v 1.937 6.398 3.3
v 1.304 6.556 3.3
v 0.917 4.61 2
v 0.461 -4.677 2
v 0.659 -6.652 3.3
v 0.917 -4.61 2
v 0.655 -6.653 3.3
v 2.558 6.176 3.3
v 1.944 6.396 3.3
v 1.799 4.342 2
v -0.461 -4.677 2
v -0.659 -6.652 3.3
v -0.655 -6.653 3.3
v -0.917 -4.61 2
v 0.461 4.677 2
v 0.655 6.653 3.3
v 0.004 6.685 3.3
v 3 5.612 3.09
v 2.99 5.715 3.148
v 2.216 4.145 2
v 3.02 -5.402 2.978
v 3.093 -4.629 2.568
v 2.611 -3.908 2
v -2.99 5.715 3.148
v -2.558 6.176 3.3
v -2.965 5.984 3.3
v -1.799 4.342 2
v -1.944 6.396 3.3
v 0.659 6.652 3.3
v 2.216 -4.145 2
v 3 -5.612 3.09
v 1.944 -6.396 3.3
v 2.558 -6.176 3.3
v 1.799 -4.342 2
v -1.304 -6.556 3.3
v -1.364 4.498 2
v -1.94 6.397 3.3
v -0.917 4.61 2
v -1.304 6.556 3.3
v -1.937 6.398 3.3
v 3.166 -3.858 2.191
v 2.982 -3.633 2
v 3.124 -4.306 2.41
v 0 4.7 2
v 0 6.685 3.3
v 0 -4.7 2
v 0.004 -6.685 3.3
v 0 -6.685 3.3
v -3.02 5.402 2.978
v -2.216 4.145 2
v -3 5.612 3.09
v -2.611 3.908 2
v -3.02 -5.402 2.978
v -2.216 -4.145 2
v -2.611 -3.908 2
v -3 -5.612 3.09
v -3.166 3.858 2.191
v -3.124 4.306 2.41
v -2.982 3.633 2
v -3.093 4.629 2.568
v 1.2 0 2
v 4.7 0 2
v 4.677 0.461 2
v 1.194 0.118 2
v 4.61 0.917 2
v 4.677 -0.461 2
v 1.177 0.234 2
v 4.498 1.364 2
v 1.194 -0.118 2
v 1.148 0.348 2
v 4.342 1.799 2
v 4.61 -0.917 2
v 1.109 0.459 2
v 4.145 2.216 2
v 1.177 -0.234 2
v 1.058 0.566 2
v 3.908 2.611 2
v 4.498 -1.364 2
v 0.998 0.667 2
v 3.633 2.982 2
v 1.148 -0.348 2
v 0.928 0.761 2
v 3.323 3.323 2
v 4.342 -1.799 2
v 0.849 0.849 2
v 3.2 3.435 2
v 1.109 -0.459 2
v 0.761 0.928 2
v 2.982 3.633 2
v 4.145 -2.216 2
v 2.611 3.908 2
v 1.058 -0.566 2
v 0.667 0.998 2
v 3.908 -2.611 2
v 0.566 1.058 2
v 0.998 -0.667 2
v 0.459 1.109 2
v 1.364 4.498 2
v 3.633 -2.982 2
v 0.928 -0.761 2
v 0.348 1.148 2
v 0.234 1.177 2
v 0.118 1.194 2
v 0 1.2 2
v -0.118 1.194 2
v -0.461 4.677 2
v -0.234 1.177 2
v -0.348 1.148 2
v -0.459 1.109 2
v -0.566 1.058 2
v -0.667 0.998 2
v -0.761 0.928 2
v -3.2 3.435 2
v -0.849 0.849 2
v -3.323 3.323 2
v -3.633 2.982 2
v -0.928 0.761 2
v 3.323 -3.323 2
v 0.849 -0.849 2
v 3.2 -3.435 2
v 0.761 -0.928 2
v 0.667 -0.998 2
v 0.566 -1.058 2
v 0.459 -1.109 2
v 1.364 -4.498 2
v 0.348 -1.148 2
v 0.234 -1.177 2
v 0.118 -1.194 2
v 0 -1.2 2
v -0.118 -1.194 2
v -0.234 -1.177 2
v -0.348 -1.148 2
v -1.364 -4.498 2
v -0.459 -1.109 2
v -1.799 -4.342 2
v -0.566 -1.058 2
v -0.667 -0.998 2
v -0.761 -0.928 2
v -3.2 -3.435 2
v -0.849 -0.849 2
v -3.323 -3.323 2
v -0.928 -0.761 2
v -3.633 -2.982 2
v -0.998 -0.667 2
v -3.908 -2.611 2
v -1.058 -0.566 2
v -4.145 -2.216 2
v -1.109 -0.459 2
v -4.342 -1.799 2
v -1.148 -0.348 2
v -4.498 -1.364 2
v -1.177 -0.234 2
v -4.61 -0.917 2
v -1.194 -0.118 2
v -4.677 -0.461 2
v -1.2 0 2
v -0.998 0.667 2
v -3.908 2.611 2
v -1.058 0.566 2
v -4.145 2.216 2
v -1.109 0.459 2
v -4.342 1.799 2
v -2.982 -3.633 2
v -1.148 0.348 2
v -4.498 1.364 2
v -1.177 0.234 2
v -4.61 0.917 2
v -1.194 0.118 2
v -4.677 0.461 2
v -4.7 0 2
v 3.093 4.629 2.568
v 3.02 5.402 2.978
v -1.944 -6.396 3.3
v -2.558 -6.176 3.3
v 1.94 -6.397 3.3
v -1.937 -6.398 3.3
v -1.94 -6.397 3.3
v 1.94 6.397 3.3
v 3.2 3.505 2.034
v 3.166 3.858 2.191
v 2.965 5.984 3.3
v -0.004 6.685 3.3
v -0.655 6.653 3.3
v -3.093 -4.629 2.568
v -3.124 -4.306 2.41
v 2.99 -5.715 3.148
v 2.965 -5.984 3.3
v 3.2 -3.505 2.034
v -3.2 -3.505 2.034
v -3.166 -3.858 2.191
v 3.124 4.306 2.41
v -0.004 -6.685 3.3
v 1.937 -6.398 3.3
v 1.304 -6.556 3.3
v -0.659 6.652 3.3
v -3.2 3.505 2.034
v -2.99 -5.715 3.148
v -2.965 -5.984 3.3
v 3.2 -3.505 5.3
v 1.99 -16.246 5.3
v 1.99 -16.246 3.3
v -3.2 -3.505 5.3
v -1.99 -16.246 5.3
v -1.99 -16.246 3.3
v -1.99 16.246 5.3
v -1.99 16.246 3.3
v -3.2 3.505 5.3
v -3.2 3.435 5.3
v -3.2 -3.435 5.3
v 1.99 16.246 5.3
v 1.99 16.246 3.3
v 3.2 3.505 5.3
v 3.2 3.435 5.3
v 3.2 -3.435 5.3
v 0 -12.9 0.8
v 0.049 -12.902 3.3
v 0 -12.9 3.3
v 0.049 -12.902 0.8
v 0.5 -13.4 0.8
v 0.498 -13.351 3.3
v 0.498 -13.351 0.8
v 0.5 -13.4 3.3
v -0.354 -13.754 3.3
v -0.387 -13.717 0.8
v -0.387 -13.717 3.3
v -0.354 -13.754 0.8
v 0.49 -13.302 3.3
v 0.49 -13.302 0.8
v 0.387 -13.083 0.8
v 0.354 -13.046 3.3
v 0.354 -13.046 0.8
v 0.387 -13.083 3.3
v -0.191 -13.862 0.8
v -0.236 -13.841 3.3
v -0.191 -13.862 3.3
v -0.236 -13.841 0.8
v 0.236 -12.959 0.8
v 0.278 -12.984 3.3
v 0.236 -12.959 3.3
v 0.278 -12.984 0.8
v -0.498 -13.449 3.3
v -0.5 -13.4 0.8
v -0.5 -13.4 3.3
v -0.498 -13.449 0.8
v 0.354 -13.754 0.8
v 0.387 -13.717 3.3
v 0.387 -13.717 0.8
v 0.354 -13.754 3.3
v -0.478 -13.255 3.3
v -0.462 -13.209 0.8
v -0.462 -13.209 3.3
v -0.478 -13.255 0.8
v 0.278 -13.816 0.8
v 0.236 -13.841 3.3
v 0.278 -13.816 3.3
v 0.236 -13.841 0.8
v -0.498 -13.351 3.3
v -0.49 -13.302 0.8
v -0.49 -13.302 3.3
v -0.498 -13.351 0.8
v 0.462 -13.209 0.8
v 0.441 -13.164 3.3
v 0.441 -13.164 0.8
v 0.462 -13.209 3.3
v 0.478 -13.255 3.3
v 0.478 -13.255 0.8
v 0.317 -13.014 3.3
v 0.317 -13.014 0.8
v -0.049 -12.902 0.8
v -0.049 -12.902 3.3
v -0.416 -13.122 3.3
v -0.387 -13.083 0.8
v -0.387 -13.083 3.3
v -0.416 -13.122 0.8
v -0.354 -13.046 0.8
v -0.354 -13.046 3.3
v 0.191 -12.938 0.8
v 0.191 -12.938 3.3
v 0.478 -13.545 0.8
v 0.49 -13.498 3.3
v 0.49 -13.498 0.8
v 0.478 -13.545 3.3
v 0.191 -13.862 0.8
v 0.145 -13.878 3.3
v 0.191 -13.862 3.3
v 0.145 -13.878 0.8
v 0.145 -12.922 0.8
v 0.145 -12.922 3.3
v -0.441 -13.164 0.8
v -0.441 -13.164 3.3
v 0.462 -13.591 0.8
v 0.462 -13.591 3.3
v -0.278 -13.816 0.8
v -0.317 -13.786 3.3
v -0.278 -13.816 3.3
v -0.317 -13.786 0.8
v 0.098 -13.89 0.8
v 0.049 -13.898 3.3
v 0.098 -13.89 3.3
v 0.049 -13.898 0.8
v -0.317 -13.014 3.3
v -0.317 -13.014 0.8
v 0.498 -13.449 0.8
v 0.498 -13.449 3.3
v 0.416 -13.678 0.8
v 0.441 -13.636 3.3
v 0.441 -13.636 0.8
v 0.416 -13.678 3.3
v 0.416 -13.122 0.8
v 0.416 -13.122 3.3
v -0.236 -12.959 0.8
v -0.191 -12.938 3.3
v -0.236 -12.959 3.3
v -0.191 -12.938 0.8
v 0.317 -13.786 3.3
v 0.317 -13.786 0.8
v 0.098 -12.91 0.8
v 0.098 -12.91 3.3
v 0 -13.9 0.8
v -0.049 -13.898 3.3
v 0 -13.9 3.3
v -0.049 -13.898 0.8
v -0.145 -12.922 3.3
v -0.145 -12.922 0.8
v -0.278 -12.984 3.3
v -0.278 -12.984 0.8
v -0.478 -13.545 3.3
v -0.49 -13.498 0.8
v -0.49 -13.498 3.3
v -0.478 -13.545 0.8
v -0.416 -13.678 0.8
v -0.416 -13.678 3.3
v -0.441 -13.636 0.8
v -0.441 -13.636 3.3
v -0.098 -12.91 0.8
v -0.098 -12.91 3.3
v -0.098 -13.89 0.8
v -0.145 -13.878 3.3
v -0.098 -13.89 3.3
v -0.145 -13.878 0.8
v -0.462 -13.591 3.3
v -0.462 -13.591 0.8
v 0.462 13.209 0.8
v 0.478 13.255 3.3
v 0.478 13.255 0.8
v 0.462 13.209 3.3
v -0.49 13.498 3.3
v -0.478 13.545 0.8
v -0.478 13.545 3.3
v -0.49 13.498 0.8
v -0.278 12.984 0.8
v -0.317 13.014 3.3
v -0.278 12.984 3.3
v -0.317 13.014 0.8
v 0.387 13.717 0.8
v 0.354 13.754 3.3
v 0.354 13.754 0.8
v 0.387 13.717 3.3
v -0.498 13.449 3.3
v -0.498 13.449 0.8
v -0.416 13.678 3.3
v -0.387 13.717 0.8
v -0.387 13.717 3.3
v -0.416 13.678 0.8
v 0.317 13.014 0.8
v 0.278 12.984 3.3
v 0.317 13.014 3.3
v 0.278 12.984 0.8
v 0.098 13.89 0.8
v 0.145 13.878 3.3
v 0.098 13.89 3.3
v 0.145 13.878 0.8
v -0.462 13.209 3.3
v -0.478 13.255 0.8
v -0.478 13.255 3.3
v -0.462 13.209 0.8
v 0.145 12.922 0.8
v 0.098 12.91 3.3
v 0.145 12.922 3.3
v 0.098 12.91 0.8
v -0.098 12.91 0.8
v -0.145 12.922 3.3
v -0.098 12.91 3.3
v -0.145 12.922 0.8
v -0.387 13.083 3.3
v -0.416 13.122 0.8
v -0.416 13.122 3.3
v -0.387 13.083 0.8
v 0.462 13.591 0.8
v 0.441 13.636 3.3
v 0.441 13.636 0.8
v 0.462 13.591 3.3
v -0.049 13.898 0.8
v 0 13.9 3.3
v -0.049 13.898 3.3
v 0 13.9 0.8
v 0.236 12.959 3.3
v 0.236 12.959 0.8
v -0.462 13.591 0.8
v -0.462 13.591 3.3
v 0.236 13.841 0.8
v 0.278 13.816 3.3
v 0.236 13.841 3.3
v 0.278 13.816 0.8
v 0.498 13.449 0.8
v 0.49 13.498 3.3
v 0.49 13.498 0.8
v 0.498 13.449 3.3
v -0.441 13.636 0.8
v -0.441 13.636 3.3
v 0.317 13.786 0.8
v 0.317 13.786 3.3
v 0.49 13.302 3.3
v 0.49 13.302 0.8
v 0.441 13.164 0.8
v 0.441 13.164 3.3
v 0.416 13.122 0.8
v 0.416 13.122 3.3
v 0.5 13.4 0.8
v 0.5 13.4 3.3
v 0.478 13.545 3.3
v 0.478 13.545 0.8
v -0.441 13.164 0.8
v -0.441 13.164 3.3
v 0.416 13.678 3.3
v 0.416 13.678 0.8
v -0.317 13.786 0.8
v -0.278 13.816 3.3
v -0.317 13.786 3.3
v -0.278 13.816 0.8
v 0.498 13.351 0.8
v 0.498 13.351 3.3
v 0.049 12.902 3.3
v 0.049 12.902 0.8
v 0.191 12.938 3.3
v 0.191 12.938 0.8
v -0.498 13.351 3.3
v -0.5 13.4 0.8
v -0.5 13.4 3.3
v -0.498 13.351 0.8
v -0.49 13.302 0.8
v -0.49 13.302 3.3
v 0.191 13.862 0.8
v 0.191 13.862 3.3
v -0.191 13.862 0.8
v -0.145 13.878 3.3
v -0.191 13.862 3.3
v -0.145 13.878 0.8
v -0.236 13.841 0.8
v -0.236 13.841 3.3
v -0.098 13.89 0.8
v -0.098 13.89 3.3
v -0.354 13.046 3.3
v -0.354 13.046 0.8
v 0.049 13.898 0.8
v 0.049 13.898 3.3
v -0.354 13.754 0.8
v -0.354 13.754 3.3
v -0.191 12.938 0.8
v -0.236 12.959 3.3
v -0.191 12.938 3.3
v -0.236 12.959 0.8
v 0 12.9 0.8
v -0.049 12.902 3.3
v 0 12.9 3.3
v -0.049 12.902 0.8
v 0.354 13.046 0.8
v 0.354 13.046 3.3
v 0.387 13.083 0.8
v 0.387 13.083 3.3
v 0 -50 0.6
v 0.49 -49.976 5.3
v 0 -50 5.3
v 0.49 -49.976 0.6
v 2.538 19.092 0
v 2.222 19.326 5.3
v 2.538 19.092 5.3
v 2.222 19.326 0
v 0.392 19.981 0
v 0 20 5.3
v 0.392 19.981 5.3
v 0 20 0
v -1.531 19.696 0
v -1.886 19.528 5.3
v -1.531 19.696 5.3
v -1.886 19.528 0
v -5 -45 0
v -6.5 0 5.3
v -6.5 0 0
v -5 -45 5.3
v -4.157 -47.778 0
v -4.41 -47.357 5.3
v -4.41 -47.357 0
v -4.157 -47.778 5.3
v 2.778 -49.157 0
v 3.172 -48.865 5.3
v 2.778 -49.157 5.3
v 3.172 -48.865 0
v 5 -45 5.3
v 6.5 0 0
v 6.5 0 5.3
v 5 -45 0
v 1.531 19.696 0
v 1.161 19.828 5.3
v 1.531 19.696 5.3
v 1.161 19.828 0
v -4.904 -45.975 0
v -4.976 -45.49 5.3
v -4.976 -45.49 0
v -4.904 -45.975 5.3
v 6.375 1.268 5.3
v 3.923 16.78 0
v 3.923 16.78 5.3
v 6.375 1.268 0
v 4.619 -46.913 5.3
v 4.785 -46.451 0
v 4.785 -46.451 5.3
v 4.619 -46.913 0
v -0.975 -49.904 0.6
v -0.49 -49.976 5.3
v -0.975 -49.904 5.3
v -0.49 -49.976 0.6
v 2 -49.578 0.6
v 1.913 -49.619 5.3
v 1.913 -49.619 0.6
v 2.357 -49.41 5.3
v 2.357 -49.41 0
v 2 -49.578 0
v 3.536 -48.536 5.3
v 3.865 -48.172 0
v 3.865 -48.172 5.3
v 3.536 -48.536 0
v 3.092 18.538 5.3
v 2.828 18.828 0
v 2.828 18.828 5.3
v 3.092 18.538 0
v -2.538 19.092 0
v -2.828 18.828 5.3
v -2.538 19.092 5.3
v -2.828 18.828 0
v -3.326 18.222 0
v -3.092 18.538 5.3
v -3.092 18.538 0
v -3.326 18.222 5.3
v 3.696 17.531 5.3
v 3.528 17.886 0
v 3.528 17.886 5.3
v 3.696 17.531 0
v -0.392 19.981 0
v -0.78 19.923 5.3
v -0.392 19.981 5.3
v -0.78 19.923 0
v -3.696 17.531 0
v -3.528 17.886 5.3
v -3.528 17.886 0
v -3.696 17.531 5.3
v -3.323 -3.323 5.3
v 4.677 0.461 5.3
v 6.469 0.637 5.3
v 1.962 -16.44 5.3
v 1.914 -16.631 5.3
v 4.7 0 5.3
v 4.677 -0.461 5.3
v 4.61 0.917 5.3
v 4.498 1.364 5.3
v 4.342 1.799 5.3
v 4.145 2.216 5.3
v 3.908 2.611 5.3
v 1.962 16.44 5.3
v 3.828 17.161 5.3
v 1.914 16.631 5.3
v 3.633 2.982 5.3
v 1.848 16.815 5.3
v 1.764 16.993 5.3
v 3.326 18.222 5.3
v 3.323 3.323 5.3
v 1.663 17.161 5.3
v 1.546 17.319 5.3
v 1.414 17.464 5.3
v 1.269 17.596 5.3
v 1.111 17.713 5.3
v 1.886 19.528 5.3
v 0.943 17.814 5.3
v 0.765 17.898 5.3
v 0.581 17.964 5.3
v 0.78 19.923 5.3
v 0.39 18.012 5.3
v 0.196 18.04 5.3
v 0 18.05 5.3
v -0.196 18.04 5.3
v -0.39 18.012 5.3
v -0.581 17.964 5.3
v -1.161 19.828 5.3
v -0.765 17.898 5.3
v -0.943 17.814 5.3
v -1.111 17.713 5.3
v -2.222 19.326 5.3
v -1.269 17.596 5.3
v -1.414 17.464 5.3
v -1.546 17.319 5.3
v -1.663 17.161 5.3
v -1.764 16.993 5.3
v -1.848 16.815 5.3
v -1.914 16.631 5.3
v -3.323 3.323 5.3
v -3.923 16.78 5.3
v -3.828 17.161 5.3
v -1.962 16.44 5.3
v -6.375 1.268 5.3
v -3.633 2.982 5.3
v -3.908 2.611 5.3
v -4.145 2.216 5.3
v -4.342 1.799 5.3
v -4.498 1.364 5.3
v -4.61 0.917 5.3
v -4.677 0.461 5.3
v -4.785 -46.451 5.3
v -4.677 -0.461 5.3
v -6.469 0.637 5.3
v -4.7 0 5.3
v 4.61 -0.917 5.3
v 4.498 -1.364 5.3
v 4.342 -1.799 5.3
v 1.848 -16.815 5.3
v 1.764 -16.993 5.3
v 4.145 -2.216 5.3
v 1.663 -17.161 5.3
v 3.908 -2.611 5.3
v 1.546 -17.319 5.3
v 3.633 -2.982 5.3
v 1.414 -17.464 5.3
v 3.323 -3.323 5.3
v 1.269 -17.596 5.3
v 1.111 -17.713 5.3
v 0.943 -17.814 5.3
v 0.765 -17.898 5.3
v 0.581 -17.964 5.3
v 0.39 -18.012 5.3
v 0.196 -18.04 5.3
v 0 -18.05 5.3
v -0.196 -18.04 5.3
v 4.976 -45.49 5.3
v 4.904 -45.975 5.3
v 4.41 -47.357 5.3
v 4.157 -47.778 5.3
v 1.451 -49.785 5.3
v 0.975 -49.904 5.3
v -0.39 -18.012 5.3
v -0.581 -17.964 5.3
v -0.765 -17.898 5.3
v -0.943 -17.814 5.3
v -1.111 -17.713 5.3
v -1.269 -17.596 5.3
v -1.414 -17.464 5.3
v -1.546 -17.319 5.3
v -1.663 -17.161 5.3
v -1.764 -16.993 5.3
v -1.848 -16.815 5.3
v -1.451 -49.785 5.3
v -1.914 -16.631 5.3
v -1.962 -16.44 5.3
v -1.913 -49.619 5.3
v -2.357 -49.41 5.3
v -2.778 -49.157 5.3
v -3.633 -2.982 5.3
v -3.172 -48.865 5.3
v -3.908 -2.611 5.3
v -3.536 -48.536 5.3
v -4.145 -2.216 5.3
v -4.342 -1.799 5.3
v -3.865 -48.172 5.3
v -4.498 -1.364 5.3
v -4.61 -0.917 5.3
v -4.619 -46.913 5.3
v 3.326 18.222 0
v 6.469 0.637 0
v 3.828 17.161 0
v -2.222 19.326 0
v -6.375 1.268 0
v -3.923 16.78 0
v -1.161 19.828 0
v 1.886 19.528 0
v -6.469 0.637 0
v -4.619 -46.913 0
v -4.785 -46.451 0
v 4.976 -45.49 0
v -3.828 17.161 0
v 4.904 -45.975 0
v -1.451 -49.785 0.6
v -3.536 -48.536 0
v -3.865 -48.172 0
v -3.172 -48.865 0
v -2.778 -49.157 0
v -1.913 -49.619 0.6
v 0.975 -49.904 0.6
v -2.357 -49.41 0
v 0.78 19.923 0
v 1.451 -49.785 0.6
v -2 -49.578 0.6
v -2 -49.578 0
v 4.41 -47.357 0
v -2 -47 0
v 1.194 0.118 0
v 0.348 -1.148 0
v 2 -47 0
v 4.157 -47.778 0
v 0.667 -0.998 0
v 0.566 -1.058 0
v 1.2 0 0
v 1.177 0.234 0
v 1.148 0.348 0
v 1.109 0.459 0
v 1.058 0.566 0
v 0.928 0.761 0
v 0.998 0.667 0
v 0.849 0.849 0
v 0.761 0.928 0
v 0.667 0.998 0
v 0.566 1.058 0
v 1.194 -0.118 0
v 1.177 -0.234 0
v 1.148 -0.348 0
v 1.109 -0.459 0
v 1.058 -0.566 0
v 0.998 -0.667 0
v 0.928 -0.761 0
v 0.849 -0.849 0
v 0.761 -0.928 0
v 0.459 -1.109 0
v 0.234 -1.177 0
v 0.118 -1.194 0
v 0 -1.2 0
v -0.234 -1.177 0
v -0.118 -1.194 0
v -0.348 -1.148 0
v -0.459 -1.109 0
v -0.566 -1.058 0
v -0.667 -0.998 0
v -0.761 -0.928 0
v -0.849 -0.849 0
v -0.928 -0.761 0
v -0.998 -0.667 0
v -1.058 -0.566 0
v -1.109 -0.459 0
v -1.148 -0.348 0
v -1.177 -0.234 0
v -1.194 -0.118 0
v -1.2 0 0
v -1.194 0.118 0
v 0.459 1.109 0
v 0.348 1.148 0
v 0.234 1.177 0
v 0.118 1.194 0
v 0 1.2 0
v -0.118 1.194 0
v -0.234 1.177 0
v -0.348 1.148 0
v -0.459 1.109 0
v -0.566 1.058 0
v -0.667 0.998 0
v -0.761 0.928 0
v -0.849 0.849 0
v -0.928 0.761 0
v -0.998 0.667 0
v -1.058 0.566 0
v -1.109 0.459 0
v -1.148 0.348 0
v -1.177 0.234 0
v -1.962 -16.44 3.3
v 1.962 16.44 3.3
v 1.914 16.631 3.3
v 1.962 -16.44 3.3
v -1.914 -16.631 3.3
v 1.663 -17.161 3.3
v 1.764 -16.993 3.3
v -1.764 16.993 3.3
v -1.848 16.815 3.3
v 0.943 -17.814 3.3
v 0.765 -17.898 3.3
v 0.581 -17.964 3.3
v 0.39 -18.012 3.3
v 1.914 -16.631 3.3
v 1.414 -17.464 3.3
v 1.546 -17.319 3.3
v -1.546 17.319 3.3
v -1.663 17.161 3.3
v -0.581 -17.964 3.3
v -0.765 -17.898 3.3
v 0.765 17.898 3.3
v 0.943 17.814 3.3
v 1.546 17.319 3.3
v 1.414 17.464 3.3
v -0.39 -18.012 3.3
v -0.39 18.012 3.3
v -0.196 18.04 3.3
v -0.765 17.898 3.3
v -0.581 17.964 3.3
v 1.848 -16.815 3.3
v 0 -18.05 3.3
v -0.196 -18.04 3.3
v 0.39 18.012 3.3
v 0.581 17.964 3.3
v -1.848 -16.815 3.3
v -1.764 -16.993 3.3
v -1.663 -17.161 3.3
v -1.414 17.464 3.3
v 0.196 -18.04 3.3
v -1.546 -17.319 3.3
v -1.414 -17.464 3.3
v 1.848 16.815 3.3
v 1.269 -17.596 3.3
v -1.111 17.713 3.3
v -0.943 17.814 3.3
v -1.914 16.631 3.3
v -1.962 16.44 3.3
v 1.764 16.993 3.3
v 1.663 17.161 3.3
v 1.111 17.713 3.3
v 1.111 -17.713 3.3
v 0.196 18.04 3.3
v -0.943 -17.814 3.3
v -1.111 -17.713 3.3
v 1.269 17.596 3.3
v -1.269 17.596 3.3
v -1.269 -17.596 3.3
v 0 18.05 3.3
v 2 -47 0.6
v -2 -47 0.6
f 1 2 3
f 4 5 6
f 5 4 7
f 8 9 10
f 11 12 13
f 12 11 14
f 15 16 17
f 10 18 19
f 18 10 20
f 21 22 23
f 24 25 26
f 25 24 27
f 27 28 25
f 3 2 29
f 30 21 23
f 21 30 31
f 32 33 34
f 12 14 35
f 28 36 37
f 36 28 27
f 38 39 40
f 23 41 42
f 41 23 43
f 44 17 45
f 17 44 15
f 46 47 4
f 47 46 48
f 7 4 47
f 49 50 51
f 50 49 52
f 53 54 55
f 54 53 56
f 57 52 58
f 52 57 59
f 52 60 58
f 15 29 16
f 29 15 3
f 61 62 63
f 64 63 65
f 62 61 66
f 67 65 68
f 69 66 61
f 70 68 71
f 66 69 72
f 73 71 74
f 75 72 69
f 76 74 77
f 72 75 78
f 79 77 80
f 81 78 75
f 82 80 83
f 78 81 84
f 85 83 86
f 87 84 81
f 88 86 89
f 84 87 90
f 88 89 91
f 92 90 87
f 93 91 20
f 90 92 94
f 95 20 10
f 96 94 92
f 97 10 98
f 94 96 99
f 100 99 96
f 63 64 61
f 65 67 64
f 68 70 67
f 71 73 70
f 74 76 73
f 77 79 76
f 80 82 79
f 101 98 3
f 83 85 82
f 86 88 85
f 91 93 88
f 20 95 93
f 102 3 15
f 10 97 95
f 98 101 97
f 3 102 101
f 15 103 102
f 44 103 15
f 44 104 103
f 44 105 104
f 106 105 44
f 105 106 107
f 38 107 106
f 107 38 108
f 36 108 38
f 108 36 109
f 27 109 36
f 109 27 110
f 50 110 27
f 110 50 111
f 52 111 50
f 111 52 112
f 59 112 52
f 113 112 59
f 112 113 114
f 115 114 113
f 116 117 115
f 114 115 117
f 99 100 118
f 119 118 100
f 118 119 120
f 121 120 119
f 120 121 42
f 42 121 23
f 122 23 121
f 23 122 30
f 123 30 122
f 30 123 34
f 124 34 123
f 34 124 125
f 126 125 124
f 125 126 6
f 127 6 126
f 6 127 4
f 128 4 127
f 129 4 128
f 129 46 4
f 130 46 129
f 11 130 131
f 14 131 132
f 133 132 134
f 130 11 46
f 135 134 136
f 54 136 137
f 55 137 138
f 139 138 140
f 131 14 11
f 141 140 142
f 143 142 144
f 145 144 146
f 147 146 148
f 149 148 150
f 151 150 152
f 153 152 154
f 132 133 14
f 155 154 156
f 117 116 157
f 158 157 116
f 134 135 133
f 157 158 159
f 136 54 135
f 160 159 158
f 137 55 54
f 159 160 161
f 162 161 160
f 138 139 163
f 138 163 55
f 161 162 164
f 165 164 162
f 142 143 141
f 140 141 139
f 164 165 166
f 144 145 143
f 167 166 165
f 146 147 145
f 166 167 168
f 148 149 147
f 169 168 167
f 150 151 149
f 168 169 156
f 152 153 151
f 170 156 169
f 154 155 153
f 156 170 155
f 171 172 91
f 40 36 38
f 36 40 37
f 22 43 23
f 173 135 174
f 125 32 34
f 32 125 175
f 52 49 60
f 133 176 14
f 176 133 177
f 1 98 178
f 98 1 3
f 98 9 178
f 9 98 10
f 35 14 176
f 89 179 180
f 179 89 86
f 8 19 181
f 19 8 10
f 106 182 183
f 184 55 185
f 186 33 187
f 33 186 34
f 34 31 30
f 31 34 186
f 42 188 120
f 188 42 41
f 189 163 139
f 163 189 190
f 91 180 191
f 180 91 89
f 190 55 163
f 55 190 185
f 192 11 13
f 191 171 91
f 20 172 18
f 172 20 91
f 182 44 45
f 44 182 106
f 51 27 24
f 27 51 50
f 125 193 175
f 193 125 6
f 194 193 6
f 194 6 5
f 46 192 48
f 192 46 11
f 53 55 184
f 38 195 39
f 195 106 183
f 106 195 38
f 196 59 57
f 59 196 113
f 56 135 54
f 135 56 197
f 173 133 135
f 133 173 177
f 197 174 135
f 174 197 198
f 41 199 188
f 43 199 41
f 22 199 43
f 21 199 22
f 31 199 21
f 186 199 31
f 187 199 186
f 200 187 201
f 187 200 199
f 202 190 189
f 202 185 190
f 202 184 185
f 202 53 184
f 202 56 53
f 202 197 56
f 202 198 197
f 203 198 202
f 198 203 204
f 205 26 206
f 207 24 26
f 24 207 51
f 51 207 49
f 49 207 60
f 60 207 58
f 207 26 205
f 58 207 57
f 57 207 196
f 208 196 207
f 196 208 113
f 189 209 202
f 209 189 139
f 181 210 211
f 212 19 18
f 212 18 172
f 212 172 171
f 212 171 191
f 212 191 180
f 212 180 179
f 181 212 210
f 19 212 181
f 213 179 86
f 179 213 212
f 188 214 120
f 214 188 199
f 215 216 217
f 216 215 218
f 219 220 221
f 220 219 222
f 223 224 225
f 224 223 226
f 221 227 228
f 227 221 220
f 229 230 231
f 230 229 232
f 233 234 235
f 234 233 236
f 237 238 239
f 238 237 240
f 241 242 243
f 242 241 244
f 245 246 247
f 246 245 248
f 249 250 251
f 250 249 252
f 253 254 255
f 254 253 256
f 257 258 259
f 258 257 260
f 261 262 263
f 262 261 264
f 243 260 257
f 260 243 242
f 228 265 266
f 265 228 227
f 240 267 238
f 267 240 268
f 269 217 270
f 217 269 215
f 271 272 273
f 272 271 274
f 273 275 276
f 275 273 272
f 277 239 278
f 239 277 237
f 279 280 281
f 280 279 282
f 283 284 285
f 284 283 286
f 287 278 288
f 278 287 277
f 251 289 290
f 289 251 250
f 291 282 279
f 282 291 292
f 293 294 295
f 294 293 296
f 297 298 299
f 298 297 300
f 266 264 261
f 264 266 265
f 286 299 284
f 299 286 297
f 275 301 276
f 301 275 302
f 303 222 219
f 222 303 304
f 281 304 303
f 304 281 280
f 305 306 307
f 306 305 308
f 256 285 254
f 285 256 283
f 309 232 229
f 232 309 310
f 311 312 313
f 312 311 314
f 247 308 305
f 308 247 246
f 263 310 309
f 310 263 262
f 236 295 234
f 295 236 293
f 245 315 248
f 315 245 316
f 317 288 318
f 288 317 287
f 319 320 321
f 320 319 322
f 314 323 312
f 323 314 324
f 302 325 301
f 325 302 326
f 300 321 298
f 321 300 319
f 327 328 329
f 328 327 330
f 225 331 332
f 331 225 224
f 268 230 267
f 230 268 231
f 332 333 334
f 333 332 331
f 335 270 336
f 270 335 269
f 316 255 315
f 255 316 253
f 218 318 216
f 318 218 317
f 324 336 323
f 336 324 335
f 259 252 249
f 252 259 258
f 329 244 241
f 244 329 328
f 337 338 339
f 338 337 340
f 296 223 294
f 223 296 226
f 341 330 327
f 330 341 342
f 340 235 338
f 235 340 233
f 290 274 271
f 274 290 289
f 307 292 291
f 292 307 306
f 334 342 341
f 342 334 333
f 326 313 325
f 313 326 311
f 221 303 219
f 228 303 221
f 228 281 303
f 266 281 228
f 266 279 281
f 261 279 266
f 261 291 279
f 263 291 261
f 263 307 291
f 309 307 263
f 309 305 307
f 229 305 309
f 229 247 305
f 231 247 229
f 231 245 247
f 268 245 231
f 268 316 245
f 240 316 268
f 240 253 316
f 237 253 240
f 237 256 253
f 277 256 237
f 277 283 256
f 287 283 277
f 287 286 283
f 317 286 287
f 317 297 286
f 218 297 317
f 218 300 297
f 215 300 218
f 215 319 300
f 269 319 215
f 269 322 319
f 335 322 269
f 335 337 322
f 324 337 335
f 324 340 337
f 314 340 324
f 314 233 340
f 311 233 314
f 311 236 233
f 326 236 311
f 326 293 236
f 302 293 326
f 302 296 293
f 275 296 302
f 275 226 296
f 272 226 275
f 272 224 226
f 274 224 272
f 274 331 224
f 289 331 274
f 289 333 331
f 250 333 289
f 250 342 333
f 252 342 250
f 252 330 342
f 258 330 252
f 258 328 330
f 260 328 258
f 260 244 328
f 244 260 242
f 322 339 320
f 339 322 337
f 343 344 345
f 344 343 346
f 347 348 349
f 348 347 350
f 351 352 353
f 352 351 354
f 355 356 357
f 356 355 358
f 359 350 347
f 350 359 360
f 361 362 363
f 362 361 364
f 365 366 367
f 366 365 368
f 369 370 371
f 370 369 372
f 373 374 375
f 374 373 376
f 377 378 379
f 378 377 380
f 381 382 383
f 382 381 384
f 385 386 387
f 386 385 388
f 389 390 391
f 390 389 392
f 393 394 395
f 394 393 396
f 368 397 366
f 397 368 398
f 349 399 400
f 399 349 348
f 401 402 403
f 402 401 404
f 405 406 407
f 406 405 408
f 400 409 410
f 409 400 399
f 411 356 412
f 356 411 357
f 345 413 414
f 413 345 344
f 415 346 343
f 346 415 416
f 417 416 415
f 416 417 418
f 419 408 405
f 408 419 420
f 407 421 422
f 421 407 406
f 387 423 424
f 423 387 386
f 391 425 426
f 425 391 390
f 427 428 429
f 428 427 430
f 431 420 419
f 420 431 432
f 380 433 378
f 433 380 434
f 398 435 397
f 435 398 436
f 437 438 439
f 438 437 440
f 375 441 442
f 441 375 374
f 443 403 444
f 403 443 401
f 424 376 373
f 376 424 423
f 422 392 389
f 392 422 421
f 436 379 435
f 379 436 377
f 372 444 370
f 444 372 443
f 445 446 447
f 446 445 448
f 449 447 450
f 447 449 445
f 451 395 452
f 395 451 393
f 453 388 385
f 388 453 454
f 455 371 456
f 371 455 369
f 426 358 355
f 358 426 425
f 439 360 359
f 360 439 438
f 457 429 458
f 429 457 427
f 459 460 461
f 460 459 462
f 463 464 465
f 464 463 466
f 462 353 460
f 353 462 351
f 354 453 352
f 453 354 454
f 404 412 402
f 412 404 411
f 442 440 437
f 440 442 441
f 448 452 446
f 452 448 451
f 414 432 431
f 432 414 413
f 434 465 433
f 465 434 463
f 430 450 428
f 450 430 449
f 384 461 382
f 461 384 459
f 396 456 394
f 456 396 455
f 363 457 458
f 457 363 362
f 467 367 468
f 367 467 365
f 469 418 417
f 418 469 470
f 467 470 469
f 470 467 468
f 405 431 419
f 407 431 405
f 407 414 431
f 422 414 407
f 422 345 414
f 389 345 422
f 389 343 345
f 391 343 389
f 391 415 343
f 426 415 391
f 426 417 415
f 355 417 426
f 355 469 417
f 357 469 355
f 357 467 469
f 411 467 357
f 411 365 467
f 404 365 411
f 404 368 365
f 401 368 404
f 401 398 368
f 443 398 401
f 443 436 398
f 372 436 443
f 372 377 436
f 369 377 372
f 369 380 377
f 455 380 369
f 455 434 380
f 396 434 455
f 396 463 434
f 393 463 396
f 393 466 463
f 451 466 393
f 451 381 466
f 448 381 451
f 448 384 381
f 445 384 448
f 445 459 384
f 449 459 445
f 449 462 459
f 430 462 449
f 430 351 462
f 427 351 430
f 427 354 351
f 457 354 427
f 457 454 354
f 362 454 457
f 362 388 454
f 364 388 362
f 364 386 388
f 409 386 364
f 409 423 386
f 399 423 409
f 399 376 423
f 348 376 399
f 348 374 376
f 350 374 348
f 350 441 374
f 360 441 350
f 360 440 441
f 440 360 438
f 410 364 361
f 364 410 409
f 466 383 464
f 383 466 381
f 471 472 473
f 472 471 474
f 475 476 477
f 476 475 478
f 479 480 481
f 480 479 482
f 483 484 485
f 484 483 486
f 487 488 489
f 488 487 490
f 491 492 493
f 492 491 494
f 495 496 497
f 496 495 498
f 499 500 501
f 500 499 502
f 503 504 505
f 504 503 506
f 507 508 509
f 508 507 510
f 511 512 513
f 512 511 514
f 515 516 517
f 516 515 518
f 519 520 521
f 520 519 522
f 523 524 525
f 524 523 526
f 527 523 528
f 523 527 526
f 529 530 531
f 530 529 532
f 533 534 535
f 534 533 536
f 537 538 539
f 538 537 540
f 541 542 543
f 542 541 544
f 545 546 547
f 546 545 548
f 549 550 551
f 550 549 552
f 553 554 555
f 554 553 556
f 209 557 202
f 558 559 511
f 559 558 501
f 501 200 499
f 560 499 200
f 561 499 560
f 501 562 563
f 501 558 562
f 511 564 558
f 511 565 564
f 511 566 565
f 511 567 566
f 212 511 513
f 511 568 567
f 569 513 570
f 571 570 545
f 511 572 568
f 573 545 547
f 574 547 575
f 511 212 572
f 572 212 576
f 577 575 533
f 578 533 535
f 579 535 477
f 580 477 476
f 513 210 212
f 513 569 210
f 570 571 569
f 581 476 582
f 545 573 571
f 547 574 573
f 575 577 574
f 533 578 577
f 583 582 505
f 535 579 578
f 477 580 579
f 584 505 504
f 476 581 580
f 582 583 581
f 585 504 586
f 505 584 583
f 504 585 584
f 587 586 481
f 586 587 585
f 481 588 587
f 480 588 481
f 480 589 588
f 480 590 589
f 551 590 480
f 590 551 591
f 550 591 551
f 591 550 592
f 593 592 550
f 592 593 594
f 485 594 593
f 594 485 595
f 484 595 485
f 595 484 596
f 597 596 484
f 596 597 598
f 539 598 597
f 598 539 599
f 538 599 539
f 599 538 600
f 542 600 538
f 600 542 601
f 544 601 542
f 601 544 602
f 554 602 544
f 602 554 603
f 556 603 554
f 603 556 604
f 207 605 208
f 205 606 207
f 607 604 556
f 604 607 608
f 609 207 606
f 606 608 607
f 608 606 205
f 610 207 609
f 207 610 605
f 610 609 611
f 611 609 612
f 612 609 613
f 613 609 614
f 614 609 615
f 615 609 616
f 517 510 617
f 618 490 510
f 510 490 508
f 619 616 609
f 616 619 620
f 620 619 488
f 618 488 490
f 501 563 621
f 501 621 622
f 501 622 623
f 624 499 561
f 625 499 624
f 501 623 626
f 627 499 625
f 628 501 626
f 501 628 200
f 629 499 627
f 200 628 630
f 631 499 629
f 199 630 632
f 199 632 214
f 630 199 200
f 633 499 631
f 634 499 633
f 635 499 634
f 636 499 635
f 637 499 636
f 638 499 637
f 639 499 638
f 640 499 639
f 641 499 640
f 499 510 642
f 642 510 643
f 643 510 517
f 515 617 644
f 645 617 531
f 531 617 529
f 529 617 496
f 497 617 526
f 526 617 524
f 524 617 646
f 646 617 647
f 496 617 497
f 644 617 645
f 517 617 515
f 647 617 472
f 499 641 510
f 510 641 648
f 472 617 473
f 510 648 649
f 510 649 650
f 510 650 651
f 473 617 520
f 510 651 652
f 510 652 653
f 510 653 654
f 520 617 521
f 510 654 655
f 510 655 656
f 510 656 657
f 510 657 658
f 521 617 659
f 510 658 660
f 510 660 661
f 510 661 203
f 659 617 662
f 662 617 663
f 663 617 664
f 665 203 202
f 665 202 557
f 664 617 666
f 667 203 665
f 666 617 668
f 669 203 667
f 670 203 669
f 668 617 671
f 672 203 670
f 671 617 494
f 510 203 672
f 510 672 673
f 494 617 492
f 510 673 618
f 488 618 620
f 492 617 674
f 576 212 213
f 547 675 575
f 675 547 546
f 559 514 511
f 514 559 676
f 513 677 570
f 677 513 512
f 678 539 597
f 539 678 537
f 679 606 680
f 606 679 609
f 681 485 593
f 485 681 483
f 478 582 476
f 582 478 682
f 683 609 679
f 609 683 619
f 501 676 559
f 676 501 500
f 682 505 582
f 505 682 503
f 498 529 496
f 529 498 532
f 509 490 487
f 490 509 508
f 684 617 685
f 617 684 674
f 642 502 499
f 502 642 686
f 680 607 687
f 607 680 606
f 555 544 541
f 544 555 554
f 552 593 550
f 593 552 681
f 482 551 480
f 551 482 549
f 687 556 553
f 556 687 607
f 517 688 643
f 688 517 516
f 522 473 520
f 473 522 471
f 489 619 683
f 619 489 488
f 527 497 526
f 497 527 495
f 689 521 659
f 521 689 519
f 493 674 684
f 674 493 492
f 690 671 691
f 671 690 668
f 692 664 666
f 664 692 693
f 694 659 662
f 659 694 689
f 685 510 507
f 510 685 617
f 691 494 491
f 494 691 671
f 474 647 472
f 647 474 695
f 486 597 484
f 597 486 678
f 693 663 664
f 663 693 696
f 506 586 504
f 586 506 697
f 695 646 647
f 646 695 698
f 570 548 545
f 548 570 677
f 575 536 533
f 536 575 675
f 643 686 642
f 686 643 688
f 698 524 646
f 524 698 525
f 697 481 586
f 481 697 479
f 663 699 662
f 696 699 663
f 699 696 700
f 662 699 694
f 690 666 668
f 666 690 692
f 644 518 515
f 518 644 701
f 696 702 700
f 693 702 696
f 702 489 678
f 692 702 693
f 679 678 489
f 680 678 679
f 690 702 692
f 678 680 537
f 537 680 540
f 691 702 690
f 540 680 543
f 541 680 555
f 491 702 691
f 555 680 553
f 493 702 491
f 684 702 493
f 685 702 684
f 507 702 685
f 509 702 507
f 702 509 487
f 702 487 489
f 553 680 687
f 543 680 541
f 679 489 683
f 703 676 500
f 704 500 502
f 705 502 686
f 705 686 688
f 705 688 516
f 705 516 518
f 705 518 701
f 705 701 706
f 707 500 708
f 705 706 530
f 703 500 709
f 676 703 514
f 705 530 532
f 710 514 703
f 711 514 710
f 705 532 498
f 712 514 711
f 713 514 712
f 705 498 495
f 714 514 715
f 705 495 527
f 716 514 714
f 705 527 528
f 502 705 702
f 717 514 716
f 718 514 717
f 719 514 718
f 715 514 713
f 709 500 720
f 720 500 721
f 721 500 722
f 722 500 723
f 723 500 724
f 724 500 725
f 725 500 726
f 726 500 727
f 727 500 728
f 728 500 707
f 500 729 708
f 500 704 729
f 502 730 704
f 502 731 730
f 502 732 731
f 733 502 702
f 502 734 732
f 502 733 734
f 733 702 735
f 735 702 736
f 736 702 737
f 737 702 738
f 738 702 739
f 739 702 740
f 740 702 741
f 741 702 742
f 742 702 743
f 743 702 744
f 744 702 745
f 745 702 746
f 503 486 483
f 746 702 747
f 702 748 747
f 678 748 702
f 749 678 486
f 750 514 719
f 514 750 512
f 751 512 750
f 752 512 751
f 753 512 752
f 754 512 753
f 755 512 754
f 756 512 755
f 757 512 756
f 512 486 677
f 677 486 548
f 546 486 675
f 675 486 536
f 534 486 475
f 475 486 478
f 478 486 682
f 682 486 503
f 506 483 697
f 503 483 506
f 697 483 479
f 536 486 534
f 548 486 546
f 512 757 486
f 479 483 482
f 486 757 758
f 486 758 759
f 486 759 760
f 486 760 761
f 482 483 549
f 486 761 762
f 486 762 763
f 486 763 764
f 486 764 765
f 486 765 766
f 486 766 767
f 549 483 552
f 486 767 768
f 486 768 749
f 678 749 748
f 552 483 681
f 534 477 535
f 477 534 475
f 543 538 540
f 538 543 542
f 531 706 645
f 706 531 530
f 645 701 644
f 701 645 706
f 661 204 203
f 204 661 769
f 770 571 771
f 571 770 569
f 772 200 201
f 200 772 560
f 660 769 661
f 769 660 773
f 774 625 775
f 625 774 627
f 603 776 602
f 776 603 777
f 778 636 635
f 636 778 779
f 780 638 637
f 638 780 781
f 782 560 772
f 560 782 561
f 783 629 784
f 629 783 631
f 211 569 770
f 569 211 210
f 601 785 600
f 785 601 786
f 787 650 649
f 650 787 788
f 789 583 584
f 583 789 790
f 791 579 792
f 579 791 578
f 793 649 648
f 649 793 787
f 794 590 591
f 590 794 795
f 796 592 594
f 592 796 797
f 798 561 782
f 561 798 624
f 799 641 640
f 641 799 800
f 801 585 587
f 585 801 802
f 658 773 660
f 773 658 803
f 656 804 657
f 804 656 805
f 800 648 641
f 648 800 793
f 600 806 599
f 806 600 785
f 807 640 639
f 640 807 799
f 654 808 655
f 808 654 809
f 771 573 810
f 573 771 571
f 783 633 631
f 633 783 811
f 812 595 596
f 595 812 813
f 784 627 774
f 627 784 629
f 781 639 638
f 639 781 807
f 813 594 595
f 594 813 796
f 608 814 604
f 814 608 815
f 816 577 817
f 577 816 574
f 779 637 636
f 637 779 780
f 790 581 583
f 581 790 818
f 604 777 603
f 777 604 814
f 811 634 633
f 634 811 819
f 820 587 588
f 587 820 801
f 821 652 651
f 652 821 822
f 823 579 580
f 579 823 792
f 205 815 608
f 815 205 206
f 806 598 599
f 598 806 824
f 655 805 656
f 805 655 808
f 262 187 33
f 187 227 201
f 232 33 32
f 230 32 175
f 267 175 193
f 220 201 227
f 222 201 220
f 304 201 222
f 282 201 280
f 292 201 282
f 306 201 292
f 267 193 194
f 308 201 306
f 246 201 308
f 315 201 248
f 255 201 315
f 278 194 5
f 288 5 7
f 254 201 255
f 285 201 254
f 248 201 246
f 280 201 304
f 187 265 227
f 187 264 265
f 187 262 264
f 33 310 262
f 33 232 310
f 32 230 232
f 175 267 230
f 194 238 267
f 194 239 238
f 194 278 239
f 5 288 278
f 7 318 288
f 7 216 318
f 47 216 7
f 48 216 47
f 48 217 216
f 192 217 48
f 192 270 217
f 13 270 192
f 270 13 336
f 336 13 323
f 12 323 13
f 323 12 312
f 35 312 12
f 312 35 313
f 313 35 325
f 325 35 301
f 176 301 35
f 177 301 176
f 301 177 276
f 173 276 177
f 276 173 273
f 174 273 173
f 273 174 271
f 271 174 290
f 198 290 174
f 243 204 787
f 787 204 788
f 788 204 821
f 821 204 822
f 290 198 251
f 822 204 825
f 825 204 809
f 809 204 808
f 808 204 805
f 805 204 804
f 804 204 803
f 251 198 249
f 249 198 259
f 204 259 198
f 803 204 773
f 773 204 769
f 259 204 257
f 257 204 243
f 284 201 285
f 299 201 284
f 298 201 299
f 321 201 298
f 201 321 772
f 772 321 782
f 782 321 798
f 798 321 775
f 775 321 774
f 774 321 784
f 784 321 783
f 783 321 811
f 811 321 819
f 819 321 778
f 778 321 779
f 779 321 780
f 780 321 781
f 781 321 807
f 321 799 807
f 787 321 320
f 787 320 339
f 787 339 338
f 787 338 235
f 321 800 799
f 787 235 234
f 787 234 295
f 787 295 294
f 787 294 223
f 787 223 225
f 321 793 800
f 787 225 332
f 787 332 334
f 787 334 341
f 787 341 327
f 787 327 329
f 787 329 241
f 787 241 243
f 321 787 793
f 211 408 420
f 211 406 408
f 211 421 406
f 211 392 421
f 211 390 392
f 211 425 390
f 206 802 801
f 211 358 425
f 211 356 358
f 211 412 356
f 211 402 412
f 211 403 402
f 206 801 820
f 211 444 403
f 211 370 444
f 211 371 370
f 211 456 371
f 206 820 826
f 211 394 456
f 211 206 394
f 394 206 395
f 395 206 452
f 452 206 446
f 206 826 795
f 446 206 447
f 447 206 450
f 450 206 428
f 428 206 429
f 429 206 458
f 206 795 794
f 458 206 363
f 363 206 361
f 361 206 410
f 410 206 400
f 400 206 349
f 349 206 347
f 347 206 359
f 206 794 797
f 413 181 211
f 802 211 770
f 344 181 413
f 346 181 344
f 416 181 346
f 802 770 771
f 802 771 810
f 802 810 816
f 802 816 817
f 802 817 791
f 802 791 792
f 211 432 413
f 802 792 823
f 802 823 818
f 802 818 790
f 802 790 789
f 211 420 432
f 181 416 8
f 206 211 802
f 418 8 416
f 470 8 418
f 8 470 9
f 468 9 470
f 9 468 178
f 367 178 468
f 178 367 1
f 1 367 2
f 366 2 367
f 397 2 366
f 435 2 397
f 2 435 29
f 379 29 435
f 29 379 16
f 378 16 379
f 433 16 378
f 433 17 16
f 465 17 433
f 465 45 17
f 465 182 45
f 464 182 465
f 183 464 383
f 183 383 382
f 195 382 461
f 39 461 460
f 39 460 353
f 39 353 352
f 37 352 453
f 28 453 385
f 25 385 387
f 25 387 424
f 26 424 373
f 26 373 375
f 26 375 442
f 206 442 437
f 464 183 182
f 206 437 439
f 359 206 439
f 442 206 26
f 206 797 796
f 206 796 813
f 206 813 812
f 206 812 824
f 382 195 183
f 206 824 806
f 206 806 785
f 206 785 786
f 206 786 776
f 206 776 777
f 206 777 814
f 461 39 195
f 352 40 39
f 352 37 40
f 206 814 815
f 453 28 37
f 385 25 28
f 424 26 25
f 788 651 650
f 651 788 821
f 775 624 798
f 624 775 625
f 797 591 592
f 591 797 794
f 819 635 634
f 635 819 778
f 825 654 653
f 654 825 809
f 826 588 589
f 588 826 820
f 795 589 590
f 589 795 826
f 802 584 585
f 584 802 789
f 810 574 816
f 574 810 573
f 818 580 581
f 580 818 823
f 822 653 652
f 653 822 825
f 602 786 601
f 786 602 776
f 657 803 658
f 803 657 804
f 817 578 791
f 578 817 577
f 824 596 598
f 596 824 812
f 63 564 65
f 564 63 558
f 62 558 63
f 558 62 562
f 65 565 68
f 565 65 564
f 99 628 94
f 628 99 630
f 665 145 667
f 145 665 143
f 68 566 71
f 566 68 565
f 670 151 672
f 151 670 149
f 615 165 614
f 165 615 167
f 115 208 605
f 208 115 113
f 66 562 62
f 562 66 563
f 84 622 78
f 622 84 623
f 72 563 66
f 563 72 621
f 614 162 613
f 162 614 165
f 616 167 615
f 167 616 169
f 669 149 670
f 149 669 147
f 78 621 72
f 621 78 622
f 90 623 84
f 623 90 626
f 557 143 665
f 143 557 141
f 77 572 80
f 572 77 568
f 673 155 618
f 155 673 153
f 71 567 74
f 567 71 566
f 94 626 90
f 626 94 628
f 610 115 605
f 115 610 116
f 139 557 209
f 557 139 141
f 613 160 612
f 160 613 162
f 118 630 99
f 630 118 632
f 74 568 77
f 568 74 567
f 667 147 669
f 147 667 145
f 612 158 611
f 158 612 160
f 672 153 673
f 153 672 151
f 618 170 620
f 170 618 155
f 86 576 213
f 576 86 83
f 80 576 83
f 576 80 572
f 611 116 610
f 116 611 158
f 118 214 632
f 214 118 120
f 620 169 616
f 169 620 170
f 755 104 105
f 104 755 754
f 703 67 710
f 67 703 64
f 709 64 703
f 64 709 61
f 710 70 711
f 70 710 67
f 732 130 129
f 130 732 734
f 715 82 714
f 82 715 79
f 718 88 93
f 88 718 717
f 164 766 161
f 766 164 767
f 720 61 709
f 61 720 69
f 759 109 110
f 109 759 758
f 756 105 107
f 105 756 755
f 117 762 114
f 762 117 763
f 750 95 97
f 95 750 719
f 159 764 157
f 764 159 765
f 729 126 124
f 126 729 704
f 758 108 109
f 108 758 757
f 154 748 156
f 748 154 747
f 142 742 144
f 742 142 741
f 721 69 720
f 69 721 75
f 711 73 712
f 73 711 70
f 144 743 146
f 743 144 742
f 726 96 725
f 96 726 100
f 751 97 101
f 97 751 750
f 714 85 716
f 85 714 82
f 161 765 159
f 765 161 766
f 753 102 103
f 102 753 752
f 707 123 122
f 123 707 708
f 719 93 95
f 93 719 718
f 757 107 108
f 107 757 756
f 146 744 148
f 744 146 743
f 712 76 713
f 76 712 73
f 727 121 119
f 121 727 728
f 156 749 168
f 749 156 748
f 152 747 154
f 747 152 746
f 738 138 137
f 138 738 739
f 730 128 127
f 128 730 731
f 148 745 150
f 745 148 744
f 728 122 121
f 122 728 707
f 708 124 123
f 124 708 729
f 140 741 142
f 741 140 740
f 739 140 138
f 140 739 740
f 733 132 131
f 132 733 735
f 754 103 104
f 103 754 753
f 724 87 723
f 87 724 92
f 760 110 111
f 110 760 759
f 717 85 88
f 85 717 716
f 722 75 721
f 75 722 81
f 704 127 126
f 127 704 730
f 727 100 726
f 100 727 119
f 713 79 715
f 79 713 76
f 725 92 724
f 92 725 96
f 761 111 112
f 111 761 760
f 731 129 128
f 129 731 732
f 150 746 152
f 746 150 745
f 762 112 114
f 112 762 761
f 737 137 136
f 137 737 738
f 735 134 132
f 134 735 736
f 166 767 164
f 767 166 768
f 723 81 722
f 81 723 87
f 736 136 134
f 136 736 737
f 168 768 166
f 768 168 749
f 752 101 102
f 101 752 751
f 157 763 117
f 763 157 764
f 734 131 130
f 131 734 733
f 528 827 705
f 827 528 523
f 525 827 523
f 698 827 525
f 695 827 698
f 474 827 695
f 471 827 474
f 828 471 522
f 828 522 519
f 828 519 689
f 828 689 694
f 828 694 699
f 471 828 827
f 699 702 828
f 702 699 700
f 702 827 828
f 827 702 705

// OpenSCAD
// Leg V3: Leg V2 with a deeper disc recess plus sloped room for the ramps. Shaped around the owner's measured double-arm horn. Units mm. OpenSCAD 2021.01.
// Horn measured 2026-11-27 from grid-sheet photos (about +/-0.2mm), not calipers:
//   overall length 35.7, hub boss 7.2 dia x 2.0 tall (spline side),
//   screw-side bump (Andrew spotted this, photos 2026-11-27): a straight-sided disc,
//   about 8.0-8.7 dia x 1.1 tall, PLUS small ramps where it meets the arm. The ramps
//   rise from the arm face up to the disc top, so from the side the bump looks sloped.
//   Owner's printed gauge: arm 2.0 thick, spline boss 7.5.
//   arm 2.0 thick,
//   arm 6.0 wide beside the hub tapering to 3.6 at the rounded tip,
//   arm holes about 1.4 dia at 5.9, 8.4, 10.9, 13.4, 15.9 from centre.
// The horn stays as mounted on the servo: tall spline boss DOWN onto the motor, sloped bump UP into this leg pocket. The leg sits on top like a lid.
// An M2 x 6 screw through the leg and horn into the servo shaft clamps everything.
// Print pocket side UP. No supports.
$fn=64;

horn_len=35.7; arm_t=2.0; arm_w_hub=6.0; arm_w_tip=3.6; hub_x=3.5;
disc_d=8.7; bump_h=1.1;   // largest measured disc; height from the side photo
rc_d=disc_d+0.7;           // straight recess for the disc
rc_h=bump_h+0.2;           // a little deeper than the disc
ramp_d=13.4;               // ramp clearance: widens to this at the arm face, only inside the arm pocket
pilot_r=13.4;     // 4th hole from the centre, both arms
clr=0.4;          // total extra width/length in the pocket (0.2 each side)

leg_t=5.3; hip_d=13; foot_d=10; leg_len=45; tail_d=8; tail_len=16;
pocket=arm_t;                 // arm sits flush with the leg face
recess=pocket+rc_h;           // total depth to the bottom of the sloped recess
floor_t=leg_t-recess;         // plastic under the hub that the screw clamps
tip_c=horn_len/2-arm_w_tip/2;

module leg_outline() {
  hull() { circle(d=hip_d); translate([0,-leg_len]) circle(d=foot_d); }
  hull() { circle(d=hip_d); translate([0,tail_len]) circle(d=tail_d); }
}
module arm_outline() {
  hull() for(s=[-1,1]) {
    translate([0,s*hub_x]) square([arm_w_hub+clr,.01],center=true);
    translate([0,s*tip_c]) circle(d=arm_w_tip+clr);
  }
}
module leg() {
  difference() {
    linear_extrude(leg_t) leg_outline();
    translate([0,0,leg_t-pocket]) linear_extrude(pocket+.1) arm_outline();
    translate([0,0,leg_t-recess]) cylinder(d=rc_d,h=recess+.1);                 // straight-sided disc recess
    intersection() {                                                             // sloped room for the ramps
      translate([0,0,leg_t-recess]) cylinder(d1=rc_d,d2=ramp_d,h=rc_h+.01);
      translate([0,0,leg_t-recess-.1]) linear_extrude(rc_h+.2) arm_outline();
    }
    translate([0,0,-.1]) cylinder(d=2.4,h=leg_t+.2);              // M2 shaft screw
    for(s=[-1,1]) translate([0,s*pilot_r,leg_t-pocket-2.5]) cylinder(d=1.0,h=2.6); // optional tiny horn screws
    translate([-2,-leg_len-foot_d/2-1,-.1]) cube([4,4,0.7]);      // toe mark on the bed face
  }
}
leg();

assert(floor_t>=2,"Plastic under the hub for the clamp screw");
assert(tail_len+tail_d/2-(horn_len+clr)/2>=1.5,"Wall beyond the upper horn tip");
assert((hip_d-rc_d)/2>=1.6,"Side wall around the hub recess");
assert(leg_t-pocket-2.5>=0.4,"Pilot holes stay inside the leg");
